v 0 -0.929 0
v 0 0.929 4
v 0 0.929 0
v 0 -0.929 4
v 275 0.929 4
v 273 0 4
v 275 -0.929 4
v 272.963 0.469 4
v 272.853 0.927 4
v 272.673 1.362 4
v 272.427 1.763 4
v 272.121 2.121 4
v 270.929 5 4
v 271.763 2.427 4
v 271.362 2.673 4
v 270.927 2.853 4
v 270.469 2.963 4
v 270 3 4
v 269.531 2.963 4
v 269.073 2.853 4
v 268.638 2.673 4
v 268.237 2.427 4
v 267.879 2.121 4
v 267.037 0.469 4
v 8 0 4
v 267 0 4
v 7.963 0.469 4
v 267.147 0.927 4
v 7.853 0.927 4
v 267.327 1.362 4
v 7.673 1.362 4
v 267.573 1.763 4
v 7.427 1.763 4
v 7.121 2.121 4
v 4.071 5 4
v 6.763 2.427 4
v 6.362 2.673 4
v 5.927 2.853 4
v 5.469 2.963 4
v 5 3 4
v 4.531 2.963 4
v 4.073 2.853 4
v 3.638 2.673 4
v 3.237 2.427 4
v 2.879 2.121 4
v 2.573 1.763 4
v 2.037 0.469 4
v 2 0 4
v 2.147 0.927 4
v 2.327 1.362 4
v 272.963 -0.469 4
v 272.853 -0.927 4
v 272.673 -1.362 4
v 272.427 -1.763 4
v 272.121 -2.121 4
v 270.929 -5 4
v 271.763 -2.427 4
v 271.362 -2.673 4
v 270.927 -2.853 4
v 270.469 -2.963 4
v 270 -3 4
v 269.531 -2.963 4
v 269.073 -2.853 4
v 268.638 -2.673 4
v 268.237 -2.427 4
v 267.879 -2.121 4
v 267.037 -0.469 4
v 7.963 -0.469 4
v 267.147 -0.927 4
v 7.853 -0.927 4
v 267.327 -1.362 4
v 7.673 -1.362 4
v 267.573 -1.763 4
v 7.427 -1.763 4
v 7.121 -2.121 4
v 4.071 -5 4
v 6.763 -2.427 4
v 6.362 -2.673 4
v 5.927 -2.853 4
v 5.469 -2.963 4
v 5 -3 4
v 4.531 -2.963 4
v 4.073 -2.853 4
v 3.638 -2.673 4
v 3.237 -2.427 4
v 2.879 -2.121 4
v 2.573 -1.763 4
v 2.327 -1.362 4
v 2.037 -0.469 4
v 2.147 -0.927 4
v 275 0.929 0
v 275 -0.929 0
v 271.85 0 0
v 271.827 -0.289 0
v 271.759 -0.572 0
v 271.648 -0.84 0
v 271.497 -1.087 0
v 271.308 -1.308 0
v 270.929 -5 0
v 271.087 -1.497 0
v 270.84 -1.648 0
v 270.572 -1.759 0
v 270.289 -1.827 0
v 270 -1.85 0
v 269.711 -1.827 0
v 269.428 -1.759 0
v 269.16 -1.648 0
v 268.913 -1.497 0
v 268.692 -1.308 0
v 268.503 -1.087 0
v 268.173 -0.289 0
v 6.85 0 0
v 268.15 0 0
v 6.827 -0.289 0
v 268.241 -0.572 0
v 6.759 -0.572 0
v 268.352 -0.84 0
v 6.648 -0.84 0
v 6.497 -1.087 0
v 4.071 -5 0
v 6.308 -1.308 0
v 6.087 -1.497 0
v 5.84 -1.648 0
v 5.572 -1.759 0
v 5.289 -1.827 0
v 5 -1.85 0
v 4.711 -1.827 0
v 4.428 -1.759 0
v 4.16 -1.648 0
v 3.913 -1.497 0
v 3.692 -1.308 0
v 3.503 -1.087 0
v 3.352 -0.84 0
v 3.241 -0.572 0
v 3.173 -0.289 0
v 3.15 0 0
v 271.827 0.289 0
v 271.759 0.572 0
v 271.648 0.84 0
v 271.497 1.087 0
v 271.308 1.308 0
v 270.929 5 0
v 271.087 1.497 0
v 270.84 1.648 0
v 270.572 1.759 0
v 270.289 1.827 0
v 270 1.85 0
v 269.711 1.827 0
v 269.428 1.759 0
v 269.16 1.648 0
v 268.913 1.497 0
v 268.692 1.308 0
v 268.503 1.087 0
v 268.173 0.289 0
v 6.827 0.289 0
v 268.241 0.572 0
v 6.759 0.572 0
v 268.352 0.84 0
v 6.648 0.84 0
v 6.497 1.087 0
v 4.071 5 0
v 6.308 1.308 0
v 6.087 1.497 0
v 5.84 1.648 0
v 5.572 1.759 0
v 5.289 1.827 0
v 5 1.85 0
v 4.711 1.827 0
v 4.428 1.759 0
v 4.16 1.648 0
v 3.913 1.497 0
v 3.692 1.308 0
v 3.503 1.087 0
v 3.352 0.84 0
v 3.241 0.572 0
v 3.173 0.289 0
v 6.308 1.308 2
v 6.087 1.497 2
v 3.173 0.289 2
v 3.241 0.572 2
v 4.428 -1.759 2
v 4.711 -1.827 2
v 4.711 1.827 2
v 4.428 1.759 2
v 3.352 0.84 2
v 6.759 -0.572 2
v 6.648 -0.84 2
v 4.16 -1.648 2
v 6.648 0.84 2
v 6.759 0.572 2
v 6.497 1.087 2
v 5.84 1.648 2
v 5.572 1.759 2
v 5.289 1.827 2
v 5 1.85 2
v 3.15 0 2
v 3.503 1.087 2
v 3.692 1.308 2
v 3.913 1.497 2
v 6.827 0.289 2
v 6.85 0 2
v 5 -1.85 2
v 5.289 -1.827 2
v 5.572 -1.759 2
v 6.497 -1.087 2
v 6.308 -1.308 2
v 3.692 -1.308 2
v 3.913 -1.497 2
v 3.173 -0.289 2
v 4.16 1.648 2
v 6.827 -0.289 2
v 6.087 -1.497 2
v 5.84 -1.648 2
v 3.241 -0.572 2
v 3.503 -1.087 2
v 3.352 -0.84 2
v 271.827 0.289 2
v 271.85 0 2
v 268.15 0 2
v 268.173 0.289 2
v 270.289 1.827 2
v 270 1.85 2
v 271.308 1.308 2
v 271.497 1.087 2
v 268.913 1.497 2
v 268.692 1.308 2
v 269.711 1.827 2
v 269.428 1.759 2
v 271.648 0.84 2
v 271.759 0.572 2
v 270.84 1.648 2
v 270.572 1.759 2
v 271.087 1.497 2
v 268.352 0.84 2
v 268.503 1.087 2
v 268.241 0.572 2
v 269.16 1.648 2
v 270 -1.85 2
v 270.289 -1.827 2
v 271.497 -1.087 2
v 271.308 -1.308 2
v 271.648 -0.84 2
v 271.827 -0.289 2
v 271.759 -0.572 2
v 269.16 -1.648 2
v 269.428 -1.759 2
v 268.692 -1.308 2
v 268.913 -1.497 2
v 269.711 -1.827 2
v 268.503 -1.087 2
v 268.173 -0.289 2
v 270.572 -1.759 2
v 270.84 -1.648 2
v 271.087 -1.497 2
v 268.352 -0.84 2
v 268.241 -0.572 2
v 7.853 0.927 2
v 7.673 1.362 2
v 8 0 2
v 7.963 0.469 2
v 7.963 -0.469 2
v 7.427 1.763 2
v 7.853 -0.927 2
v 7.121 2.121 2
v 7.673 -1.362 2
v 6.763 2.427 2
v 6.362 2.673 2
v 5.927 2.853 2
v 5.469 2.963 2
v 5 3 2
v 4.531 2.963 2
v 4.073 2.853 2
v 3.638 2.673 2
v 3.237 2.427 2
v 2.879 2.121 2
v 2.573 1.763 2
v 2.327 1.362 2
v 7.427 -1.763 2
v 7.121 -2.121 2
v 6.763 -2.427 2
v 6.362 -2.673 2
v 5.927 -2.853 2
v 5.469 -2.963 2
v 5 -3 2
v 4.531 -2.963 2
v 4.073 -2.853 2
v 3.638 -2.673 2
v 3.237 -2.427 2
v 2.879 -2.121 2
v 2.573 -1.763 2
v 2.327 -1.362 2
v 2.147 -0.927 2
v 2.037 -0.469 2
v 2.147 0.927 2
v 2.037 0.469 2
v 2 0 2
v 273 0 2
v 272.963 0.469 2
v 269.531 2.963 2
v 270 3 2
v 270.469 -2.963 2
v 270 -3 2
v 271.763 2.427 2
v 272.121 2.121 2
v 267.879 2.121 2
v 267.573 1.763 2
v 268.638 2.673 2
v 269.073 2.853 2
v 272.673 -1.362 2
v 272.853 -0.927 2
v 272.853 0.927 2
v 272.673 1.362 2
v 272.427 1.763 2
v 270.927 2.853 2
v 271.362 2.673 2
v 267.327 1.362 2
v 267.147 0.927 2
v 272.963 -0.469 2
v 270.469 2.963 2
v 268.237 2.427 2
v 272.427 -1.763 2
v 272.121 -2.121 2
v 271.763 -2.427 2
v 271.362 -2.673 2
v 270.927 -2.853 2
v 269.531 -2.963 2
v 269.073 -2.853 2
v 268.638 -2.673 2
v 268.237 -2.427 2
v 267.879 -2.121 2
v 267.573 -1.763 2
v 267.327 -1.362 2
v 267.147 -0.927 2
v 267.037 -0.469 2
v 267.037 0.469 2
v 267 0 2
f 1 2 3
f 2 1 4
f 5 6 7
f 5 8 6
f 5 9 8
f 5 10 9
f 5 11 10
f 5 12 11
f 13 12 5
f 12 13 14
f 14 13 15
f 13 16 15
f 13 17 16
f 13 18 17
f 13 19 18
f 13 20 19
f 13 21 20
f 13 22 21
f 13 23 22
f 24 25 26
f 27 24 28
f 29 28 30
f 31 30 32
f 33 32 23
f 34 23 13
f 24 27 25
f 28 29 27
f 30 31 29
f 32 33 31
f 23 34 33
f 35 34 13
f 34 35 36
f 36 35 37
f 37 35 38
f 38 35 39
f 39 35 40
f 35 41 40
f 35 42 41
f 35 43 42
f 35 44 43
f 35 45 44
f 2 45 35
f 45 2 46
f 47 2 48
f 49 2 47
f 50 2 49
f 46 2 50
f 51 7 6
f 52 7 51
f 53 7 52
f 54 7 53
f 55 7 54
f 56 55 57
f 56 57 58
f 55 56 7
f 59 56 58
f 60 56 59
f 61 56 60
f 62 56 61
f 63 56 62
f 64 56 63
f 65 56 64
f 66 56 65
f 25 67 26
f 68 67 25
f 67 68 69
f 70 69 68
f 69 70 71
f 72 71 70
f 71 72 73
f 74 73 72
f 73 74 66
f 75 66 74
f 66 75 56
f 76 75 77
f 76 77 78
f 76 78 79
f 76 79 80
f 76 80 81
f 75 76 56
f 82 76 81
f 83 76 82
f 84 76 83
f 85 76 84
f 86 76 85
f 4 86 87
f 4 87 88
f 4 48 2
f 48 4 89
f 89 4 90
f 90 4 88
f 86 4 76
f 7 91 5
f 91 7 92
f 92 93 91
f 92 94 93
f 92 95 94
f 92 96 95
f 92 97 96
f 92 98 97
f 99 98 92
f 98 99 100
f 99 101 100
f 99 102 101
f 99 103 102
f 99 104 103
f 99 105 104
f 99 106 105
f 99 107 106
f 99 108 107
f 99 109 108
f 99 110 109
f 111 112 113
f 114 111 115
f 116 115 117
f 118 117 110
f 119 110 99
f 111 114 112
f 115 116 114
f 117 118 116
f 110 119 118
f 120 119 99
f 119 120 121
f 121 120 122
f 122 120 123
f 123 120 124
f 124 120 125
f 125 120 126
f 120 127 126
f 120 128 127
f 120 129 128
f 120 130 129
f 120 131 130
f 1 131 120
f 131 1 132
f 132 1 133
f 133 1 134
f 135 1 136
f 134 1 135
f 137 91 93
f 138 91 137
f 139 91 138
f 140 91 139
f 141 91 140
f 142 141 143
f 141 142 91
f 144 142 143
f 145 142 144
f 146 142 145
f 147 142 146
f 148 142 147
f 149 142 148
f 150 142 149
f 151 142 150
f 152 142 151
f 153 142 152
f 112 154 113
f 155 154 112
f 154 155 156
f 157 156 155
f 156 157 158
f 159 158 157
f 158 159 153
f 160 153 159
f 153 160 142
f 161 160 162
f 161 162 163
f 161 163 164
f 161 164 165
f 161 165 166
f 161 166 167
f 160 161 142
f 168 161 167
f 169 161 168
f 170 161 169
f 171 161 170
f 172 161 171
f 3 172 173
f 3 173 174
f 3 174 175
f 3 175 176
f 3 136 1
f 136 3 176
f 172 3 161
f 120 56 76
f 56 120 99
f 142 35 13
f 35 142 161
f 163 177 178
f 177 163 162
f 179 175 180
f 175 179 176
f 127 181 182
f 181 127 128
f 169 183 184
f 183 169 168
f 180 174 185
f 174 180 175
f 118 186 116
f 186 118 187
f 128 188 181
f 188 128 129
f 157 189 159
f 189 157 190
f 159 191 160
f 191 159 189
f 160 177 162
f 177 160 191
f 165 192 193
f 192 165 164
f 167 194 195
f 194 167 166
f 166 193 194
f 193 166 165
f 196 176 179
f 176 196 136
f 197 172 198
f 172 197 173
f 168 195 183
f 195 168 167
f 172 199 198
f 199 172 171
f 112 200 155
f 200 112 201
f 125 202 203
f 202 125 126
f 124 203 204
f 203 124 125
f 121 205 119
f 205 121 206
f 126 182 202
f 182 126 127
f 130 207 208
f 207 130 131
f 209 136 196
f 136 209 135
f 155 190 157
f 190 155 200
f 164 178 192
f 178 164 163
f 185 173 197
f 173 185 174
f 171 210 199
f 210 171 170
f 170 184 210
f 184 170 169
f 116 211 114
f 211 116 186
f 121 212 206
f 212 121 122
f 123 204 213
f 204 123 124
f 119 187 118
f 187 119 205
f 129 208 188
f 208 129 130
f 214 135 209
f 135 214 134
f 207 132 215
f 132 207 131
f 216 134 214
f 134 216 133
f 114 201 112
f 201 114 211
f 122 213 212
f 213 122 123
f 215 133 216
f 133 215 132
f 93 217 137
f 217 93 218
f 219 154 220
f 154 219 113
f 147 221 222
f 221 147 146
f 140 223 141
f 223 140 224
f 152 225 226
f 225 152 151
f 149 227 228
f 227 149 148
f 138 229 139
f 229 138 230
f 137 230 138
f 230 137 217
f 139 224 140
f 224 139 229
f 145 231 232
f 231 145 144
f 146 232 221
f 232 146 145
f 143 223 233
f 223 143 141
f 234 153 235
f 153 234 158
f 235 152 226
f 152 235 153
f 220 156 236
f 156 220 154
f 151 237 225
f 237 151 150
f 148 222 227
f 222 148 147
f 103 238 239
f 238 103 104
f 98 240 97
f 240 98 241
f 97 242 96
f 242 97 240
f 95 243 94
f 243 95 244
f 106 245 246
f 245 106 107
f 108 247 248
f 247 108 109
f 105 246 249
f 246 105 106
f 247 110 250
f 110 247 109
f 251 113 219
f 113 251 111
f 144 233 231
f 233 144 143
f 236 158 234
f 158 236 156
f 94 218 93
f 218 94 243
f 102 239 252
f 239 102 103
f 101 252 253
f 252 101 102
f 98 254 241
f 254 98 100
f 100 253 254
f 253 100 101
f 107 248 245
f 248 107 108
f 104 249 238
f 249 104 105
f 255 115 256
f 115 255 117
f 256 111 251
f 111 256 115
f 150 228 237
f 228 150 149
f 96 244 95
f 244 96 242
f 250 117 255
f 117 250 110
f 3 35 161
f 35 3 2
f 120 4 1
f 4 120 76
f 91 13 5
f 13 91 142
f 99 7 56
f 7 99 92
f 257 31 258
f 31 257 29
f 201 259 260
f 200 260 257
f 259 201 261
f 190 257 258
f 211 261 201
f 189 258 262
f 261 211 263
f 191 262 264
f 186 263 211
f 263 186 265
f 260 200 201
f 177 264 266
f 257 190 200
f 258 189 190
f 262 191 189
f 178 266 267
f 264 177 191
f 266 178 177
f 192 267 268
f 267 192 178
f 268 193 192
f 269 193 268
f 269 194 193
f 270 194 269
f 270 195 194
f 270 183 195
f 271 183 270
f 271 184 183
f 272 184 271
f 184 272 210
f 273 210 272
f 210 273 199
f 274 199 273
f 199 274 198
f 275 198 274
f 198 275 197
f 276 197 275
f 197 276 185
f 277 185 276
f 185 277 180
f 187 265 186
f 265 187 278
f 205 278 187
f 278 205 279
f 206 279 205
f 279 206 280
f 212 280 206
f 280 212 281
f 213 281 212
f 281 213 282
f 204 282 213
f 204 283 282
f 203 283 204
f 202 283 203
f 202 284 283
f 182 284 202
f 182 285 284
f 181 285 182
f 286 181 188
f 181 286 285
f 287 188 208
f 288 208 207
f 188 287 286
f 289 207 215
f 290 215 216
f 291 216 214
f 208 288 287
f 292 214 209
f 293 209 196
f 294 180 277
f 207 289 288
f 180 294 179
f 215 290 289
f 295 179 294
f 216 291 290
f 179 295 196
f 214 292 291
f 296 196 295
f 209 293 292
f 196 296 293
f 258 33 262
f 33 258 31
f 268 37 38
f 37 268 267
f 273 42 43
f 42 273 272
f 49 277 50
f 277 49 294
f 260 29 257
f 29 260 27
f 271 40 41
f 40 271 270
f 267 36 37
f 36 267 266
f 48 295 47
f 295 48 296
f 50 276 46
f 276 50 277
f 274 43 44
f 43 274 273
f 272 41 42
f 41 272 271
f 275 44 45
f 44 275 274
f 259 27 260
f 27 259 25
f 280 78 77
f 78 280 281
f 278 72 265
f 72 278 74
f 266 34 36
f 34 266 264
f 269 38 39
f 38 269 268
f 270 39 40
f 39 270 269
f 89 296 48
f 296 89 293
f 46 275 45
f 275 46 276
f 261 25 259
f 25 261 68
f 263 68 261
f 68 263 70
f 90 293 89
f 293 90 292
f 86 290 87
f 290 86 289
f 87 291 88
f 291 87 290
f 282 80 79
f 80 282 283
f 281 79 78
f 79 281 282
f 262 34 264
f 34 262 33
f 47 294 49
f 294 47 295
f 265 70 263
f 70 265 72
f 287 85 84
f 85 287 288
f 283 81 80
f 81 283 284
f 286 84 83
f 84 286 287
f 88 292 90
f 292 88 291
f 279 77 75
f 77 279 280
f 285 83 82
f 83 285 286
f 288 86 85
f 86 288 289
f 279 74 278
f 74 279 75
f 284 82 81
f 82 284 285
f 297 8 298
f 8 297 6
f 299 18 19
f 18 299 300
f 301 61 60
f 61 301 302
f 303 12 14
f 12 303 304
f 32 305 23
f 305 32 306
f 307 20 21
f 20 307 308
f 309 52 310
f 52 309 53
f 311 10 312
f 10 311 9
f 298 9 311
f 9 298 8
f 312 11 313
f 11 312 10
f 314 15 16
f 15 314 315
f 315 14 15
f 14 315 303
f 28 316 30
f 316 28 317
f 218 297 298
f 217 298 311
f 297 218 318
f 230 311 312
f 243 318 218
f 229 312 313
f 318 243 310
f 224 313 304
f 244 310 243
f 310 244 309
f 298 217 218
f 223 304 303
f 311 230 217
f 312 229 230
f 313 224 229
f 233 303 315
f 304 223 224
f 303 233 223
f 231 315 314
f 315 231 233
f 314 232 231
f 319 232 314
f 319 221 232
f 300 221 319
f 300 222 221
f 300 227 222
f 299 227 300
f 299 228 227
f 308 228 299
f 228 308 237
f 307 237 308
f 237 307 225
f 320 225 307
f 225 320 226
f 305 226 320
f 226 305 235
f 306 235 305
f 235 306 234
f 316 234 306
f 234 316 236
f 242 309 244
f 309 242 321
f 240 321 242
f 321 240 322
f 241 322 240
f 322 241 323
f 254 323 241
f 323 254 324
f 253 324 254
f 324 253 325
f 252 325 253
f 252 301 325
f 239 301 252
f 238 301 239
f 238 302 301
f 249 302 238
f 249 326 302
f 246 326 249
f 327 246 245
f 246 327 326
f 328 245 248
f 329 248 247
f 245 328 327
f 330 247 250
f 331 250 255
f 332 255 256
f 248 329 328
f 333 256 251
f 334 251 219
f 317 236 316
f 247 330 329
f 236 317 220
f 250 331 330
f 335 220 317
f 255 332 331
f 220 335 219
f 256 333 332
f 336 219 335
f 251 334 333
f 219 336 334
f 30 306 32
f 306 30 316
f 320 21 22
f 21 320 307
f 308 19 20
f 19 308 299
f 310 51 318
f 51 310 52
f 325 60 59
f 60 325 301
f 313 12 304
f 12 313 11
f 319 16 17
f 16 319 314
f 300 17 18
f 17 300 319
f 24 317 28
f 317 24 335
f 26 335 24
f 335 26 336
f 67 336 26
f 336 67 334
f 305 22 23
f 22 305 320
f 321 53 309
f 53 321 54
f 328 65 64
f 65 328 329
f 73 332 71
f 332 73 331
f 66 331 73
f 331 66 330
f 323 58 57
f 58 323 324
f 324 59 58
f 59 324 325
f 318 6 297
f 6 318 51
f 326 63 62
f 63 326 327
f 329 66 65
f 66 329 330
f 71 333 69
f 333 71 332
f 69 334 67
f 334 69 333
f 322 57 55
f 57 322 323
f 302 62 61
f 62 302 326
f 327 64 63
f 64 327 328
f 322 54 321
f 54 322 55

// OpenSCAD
// This is the top side with card guides.
// Orientation:
// x = 0 : left edge of backplane PCB
// y = 0 : top of backplane
// z = 0 : outermost surface of card guide

include <s100_defs18-2c.scad>

$fn = 40;

bar_length = mod_width + 2*(cg_slot_gap+cg_depth);
echo(bar_length);

//cube([10,10,10])

difference(){
  // Additions (guides, frame, lip, etc)
  union(){
    translate([0, -bar_height/2, 0]) cube(size=[bar_length,bar_height,bar_width-2], center=false);
      }
  // Through holes
  translate([cg_depth/2, 0, -1]) cylinder(h=bar_width+2, d=screw_clearance, center=false); 
  translate([bar_length-cg_depth/2, 0, -1]) cylinder(h=bar_width+2, d=screw_clearance, center=false); 
  //picos quitados  
  translate ([0,8,0]) rotate([0,0,45]) cube([10,10,20], center=true);
  translate ([0,-8,0]) rotate([0,0,45]) cube([10,10,20], center=true);
  translate ([275,8,0]) rotate([0,0,45]) cube([10,10,20], center=true);
  translate ([275,-8,0]) rotate([0,0,45]) cube([10,10,20], center=true);

  // Shallow counterbores
  translate([cg_depth/2, 0, bar_width-screw_head_depth-.5]) cylinder(h=screw_head_depth+1, d=screw_head_dia, center=false); 
  translate([bar_length-cg_depth/2, 0, bar_width-screw_head_depth-.5]) cylinder(h=screw_head_depth+1, d=screw_head_dia, center=false); 
}
